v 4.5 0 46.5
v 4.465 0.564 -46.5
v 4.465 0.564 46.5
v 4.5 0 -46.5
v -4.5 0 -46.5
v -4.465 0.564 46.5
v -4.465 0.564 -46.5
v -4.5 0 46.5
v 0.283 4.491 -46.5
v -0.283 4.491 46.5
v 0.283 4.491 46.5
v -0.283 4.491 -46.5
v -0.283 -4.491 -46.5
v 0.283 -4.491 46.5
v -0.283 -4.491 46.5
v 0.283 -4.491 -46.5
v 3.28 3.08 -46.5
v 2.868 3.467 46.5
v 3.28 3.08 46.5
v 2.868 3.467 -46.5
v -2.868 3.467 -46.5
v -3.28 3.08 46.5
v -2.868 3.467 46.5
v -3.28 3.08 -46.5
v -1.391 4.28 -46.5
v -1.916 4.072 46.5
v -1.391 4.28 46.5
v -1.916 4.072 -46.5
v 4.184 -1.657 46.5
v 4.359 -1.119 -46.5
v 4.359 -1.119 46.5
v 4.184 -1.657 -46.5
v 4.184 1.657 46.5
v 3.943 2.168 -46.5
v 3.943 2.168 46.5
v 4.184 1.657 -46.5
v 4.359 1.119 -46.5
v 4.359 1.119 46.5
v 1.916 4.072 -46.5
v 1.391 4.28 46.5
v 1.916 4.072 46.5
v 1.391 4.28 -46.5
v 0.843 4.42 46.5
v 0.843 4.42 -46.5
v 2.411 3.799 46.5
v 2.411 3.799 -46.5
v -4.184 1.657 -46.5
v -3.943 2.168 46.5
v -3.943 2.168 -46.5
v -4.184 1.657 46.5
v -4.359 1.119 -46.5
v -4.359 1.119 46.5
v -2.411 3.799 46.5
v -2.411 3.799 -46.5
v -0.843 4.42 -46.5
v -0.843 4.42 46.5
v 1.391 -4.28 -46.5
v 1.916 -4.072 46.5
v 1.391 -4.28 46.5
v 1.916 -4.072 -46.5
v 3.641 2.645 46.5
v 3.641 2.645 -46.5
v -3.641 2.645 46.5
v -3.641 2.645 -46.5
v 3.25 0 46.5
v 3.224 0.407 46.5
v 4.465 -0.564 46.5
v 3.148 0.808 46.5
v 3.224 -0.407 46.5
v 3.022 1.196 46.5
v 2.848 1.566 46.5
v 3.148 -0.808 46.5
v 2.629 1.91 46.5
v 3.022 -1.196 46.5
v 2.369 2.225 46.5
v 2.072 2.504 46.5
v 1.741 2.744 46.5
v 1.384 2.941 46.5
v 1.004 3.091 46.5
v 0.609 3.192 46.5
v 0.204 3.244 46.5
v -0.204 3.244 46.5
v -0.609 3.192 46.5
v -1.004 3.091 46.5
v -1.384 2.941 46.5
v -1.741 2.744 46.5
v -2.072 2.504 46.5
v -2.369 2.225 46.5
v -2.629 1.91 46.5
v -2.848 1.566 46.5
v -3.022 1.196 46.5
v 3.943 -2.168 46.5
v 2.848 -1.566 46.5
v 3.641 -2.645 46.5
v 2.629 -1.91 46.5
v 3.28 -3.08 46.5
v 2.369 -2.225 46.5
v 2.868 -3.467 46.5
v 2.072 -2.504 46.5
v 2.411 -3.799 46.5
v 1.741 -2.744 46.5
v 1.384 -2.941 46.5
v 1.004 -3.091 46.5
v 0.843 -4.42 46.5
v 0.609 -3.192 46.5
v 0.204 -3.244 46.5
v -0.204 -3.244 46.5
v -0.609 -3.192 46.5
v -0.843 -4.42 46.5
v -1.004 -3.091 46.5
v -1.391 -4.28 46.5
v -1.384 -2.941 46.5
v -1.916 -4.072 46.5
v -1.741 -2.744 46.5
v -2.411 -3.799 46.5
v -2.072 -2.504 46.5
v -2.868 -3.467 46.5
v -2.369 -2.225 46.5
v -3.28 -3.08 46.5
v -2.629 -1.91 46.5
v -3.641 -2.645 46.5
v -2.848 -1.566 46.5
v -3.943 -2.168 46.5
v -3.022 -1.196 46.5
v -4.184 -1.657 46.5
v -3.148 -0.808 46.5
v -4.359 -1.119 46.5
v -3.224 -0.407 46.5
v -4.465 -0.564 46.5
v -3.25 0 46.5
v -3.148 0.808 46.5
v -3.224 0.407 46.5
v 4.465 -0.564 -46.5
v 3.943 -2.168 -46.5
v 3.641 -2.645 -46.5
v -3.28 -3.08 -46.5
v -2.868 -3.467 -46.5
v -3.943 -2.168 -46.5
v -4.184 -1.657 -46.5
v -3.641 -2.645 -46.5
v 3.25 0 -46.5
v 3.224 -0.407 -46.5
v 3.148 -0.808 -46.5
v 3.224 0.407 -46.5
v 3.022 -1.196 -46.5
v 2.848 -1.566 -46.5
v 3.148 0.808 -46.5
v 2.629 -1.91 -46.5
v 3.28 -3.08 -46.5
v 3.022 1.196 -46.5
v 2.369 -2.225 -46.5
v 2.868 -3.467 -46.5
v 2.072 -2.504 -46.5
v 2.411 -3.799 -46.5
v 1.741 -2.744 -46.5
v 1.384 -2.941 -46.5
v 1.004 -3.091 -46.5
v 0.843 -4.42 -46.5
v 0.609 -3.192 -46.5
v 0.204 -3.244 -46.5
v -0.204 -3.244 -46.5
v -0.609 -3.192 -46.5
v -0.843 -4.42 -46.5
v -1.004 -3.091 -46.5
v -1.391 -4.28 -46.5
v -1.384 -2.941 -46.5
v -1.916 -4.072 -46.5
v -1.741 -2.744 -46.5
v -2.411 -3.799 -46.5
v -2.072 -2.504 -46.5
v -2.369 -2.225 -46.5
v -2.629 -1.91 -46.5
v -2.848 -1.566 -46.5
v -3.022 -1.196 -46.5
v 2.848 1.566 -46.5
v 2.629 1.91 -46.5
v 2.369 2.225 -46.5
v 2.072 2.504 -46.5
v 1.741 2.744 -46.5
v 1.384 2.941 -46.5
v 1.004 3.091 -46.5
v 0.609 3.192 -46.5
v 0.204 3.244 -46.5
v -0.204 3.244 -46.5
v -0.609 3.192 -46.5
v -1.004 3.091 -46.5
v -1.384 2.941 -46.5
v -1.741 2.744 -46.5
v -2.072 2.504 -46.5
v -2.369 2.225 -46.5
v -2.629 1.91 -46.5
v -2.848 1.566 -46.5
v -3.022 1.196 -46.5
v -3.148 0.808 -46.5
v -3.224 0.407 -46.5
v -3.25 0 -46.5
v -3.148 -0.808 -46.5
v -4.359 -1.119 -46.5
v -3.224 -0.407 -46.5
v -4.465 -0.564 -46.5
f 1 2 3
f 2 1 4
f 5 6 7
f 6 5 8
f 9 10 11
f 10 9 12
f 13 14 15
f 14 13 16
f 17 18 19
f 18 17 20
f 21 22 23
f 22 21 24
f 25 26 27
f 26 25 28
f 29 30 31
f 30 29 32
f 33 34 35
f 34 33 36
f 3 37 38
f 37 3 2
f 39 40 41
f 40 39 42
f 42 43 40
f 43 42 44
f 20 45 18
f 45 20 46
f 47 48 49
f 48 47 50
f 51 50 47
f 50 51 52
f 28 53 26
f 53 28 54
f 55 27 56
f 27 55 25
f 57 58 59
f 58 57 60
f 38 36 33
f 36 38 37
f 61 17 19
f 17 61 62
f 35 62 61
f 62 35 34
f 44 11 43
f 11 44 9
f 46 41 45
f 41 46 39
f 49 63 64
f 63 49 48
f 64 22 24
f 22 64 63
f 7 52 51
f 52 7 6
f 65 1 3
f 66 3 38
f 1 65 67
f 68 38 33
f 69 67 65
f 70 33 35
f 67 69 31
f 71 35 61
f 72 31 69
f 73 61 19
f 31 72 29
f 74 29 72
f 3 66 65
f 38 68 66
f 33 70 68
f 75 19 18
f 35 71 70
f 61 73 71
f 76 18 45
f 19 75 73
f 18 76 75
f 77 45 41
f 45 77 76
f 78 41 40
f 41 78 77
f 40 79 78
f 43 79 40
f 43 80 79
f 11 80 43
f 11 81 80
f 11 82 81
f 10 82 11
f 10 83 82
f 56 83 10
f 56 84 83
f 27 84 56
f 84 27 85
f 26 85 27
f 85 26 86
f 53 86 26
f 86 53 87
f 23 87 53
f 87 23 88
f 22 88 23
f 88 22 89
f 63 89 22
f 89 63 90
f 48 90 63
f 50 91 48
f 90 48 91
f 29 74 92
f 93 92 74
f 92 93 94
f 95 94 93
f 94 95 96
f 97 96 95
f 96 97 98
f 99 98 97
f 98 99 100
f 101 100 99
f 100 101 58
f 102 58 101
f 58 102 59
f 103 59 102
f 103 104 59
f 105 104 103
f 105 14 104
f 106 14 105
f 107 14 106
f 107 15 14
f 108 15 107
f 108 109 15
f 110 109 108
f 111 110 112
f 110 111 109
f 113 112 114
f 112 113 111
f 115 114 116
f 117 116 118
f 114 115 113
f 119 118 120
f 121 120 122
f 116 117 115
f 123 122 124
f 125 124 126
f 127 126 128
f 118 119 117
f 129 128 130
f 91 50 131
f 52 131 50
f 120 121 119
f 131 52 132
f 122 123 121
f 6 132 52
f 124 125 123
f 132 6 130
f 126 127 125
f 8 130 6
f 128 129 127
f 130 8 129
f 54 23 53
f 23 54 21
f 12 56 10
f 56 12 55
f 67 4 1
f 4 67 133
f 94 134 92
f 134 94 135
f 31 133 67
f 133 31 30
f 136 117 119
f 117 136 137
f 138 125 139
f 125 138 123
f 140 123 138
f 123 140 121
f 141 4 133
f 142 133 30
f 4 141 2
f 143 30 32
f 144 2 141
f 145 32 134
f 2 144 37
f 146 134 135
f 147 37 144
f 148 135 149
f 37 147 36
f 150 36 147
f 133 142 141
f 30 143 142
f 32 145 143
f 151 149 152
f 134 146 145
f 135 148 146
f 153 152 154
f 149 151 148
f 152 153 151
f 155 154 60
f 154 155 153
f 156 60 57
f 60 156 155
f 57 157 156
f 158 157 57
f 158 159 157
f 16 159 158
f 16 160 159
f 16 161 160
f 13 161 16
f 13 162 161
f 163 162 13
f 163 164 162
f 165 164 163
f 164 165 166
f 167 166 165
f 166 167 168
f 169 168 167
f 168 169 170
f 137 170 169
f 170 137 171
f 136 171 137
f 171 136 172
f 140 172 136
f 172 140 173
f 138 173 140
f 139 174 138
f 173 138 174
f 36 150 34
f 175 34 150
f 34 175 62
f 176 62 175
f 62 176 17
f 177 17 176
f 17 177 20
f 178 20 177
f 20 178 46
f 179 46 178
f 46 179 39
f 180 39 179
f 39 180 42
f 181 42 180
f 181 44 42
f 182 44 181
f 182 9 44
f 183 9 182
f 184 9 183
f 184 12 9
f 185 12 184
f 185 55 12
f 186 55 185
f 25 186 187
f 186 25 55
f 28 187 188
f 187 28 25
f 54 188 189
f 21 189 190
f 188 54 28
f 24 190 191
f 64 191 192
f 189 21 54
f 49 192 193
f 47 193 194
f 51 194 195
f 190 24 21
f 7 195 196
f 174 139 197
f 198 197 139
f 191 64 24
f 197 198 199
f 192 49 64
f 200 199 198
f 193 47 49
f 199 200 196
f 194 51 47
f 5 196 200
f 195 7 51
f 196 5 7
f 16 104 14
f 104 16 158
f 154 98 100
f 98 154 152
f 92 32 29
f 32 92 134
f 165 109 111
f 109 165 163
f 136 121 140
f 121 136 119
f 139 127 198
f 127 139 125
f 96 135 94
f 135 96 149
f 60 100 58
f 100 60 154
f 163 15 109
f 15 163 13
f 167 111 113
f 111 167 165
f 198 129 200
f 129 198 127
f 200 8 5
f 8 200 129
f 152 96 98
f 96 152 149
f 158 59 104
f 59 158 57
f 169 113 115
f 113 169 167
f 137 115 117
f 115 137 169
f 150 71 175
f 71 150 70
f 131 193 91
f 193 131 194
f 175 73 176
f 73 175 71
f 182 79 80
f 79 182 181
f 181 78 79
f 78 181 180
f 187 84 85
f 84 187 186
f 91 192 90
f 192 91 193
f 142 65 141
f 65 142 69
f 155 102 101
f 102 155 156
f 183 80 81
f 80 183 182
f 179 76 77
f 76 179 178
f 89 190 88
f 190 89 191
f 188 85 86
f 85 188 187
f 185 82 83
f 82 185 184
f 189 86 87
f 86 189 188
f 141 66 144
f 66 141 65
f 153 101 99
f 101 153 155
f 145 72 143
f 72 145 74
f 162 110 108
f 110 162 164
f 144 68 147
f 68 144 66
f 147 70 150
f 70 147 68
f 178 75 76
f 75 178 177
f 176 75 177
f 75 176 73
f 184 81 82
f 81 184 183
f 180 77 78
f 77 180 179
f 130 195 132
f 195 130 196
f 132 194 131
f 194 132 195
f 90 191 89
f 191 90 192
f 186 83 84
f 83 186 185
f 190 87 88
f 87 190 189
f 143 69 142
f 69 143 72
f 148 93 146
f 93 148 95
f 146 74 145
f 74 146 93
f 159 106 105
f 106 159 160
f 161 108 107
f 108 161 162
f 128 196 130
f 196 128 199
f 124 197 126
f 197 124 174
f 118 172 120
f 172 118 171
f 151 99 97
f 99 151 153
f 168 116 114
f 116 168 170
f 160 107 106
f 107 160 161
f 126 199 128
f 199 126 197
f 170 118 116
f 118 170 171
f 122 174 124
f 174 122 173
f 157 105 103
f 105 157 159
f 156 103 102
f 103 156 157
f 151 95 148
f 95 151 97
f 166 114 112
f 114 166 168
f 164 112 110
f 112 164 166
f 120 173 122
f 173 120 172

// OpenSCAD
$fn = 50;


difference() {
	union() {
		translate(v = [0, 0, -46.5000000000]) {
			cylinder(h = 93, r = 4.5000000000);
		}
	}
	union() {
		translate(v = [0, 0, -100.0000000000]) {
			cylinder(h = 200, r = 3.2500000000);
		}
	}
}
